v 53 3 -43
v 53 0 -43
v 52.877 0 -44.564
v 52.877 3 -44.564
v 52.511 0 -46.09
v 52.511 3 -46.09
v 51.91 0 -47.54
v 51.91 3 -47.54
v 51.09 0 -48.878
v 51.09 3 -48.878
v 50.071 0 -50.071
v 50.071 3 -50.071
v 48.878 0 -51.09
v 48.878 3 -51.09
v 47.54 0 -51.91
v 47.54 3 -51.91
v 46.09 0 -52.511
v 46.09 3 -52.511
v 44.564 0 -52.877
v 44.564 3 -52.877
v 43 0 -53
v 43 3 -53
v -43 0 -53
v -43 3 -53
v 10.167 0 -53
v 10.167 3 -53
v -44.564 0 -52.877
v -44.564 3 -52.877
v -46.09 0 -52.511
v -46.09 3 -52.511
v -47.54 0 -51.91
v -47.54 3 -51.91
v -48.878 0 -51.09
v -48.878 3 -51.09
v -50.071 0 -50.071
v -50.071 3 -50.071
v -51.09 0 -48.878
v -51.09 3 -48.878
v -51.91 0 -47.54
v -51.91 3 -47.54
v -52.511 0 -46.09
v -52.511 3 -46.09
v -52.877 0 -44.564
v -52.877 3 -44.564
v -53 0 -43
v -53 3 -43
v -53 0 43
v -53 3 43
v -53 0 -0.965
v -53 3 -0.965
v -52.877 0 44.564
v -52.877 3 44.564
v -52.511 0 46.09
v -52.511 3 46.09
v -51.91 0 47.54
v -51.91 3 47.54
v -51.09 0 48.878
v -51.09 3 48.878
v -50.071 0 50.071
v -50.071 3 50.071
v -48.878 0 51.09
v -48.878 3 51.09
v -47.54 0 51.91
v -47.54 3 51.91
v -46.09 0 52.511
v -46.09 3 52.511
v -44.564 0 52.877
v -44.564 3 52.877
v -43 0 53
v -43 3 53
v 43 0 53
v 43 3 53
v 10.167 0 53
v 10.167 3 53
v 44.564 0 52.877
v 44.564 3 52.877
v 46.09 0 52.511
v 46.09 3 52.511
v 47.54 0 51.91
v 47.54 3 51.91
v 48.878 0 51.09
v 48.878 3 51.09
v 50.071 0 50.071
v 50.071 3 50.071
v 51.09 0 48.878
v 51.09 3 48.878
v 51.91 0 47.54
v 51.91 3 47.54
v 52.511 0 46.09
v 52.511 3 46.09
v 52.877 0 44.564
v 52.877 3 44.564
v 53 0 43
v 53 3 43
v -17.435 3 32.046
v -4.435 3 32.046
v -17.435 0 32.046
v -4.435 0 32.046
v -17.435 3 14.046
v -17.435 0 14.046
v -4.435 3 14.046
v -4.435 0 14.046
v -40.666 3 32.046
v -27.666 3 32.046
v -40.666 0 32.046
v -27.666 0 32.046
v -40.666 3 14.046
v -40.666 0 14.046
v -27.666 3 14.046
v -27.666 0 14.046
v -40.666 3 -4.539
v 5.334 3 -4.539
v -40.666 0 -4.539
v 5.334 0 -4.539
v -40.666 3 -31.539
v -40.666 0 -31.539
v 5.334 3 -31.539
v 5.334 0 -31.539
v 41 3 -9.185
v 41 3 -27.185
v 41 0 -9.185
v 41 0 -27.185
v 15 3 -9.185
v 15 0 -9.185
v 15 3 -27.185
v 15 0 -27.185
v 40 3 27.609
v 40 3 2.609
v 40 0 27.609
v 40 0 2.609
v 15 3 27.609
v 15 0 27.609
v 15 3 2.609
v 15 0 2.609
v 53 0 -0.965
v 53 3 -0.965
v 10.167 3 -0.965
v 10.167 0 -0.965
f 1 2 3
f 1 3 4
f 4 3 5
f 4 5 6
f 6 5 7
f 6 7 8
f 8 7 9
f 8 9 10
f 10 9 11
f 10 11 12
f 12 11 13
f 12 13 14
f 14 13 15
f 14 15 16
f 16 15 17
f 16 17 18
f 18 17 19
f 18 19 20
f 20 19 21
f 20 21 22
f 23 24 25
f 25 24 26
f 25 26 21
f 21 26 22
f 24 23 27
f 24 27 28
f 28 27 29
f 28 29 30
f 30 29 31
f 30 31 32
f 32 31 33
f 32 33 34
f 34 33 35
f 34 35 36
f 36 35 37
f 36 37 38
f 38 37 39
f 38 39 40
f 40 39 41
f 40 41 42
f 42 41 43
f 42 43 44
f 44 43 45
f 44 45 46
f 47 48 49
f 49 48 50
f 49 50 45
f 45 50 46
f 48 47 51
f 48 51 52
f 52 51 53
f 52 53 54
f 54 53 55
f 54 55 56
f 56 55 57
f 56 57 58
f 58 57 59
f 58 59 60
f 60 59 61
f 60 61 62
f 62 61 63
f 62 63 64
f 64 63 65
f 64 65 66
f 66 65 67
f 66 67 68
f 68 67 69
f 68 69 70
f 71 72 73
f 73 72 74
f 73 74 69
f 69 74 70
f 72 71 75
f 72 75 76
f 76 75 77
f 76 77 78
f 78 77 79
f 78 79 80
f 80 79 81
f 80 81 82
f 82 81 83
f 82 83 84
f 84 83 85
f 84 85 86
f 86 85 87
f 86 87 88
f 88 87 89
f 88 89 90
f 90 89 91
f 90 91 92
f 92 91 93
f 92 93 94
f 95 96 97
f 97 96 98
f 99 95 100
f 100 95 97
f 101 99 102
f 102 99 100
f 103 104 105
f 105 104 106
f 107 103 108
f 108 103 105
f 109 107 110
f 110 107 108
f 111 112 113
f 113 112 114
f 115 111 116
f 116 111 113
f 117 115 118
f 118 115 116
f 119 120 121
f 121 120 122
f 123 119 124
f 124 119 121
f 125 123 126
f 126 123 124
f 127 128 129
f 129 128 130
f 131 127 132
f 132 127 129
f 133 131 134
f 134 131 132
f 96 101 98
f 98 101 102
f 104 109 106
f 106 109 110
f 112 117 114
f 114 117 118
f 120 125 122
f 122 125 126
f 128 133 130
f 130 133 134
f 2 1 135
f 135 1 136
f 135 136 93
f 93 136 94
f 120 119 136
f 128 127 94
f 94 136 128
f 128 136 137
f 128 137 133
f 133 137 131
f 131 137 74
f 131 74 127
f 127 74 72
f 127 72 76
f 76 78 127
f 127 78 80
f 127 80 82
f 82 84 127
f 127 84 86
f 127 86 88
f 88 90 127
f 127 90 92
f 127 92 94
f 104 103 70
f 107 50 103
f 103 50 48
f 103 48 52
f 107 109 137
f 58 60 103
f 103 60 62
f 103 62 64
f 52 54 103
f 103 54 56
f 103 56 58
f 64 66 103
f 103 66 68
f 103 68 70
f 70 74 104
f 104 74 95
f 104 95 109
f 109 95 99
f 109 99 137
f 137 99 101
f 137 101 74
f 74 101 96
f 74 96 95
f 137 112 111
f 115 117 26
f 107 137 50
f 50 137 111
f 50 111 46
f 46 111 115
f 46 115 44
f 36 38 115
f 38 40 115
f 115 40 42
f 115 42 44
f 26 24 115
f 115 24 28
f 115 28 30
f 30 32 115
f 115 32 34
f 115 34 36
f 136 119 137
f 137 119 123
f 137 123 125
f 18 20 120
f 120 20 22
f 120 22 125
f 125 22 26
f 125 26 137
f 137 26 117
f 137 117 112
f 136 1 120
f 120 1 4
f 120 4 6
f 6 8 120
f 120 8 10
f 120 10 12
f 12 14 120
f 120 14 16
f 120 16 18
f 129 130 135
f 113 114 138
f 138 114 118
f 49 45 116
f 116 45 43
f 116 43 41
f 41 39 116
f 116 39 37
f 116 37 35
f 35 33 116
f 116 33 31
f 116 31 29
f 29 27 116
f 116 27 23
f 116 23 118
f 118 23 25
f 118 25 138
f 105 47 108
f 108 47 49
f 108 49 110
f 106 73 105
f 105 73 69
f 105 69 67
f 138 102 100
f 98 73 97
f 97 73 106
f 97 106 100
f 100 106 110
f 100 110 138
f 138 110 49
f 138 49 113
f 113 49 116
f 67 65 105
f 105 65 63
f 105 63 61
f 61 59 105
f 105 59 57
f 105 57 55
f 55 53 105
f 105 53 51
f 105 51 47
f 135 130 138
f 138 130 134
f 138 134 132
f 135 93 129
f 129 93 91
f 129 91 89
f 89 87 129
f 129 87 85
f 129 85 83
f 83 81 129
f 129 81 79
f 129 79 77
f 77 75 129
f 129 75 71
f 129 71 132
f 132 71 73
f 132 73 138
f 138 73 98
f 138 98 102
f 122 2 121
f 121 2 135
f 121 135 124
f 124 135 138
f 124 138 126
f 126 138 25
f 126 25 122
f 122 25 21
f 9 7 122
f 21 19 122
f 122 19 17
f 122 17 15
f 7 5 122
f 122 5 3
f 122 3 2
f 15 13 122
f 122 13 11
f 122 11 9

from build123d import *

# Parameters (mm, degrees)
SKETCH1_W           = 25
SKETCH1_H           = 25
SKETCH1_W_2         = 26
SKETCH1_H_2         = 18
SKETCH1_W_3         = 46
SKETCH1_H_3         = 27
SKETCH1_W_4         = 13
BOSS_EXTRUDE1_DEPTH = 3


with BuildPart() as part:
    # Sketch1 → Boss-Extrude1 (new body)
    with BuildSketch(Plane(origin=(0, 0, 0), x_dir=(1, 0, 0), z_dir=(0, 1, 0))):
        with BuildLine():
            ThreePointArc((43, 53), (50.071067812, 50.071067812), (53, 43))
            Line((53, 43), (53, -43))
            ThreePointArc((53, -43), (50.071067812, -50.071067812), (43, -53))
            Line((43, -53), (-43, -53))
            ThreePointArc((-43, -53), (-50.071067812, -50.071067812), (-53, -43))
            Line((-53, -43), (-53, 43))
            ThreePointArc((-53, 43), (-50.071067812, 50.071067812), (-43, 53))
            Line((-43, 53), (43, 53))
        make_face()
        with BuildLine():
            Line((-40, 50), (40, 50))
            ThreePointArc((40, 50), (47.071067812, 47.071067812), (50, 40))
            Line((50, 40), (50, -40))
            ThreePointArc((50, -40), (47.071067812, -47.071067812), (40, -50))
            Line((40, -50), (-40, -50))
            ThreePointArc((-40, -50), (-47.071067812, -47.071067812), (-50, -40))
            Line((-50, -40), (-50, 40))
            ThreePointArc((-50, 40), (-47.071067812, 47.071067812), (-40, 50))
        make_face(mode=Mode.SUBTRACT)
        with BuildLine():
            ThreePointArc((40, 50), (47.071067812, 47.071067812), (50, 40))
            Line((50, 40), (50, -40))
            ThreePointArc((50, -40), (47.071067812, -47.071067812), (40, -50))
            Line((40, -50), (-40, -50))
            ThreePointArc((-40, -50), (-47.071067812, -47.071067812), (-50, -40))
            Line((-50, -40), (-50, 40))
            ThreePointArc((-50, 40), (-47.071067812, 47.071067812), (-40, 50))
            Line((-40, 50), (40, 50))
        make_face()
        with Locations((27.5, -15.109148856)):
            Rectangle(SKETCH1_W, SKETCH1_H, mode=Mode.SUBTRACT)
        with Locations((28, 18.185109271)):
            Rectangle(SKETCH1_W_2, SKETCH1_H_2, mode=Mode.SUBTRACT)
        with Locations((-17.665765758, 18.038886372)):
            Rectangle(SKETCH1_W_3, SKETCH1_H_3, mode=Mode.SUBTRACT)
        with Locations((-34.165765758, -23.046005222)):
            Rectangle(SKETCH1_W_4, SKETCH1_H_2, mode=Mode.SUBTRACT)
        with Locations((-10.934651265, -23.046005222)):
            Rectangle(SKETCH1_W_4, SKETCH1_H_2, mode=Mode.SUBTRACT)
    extrude(amount=BOSS_EXTRUDE1_DEPTH)


solid = part.part
